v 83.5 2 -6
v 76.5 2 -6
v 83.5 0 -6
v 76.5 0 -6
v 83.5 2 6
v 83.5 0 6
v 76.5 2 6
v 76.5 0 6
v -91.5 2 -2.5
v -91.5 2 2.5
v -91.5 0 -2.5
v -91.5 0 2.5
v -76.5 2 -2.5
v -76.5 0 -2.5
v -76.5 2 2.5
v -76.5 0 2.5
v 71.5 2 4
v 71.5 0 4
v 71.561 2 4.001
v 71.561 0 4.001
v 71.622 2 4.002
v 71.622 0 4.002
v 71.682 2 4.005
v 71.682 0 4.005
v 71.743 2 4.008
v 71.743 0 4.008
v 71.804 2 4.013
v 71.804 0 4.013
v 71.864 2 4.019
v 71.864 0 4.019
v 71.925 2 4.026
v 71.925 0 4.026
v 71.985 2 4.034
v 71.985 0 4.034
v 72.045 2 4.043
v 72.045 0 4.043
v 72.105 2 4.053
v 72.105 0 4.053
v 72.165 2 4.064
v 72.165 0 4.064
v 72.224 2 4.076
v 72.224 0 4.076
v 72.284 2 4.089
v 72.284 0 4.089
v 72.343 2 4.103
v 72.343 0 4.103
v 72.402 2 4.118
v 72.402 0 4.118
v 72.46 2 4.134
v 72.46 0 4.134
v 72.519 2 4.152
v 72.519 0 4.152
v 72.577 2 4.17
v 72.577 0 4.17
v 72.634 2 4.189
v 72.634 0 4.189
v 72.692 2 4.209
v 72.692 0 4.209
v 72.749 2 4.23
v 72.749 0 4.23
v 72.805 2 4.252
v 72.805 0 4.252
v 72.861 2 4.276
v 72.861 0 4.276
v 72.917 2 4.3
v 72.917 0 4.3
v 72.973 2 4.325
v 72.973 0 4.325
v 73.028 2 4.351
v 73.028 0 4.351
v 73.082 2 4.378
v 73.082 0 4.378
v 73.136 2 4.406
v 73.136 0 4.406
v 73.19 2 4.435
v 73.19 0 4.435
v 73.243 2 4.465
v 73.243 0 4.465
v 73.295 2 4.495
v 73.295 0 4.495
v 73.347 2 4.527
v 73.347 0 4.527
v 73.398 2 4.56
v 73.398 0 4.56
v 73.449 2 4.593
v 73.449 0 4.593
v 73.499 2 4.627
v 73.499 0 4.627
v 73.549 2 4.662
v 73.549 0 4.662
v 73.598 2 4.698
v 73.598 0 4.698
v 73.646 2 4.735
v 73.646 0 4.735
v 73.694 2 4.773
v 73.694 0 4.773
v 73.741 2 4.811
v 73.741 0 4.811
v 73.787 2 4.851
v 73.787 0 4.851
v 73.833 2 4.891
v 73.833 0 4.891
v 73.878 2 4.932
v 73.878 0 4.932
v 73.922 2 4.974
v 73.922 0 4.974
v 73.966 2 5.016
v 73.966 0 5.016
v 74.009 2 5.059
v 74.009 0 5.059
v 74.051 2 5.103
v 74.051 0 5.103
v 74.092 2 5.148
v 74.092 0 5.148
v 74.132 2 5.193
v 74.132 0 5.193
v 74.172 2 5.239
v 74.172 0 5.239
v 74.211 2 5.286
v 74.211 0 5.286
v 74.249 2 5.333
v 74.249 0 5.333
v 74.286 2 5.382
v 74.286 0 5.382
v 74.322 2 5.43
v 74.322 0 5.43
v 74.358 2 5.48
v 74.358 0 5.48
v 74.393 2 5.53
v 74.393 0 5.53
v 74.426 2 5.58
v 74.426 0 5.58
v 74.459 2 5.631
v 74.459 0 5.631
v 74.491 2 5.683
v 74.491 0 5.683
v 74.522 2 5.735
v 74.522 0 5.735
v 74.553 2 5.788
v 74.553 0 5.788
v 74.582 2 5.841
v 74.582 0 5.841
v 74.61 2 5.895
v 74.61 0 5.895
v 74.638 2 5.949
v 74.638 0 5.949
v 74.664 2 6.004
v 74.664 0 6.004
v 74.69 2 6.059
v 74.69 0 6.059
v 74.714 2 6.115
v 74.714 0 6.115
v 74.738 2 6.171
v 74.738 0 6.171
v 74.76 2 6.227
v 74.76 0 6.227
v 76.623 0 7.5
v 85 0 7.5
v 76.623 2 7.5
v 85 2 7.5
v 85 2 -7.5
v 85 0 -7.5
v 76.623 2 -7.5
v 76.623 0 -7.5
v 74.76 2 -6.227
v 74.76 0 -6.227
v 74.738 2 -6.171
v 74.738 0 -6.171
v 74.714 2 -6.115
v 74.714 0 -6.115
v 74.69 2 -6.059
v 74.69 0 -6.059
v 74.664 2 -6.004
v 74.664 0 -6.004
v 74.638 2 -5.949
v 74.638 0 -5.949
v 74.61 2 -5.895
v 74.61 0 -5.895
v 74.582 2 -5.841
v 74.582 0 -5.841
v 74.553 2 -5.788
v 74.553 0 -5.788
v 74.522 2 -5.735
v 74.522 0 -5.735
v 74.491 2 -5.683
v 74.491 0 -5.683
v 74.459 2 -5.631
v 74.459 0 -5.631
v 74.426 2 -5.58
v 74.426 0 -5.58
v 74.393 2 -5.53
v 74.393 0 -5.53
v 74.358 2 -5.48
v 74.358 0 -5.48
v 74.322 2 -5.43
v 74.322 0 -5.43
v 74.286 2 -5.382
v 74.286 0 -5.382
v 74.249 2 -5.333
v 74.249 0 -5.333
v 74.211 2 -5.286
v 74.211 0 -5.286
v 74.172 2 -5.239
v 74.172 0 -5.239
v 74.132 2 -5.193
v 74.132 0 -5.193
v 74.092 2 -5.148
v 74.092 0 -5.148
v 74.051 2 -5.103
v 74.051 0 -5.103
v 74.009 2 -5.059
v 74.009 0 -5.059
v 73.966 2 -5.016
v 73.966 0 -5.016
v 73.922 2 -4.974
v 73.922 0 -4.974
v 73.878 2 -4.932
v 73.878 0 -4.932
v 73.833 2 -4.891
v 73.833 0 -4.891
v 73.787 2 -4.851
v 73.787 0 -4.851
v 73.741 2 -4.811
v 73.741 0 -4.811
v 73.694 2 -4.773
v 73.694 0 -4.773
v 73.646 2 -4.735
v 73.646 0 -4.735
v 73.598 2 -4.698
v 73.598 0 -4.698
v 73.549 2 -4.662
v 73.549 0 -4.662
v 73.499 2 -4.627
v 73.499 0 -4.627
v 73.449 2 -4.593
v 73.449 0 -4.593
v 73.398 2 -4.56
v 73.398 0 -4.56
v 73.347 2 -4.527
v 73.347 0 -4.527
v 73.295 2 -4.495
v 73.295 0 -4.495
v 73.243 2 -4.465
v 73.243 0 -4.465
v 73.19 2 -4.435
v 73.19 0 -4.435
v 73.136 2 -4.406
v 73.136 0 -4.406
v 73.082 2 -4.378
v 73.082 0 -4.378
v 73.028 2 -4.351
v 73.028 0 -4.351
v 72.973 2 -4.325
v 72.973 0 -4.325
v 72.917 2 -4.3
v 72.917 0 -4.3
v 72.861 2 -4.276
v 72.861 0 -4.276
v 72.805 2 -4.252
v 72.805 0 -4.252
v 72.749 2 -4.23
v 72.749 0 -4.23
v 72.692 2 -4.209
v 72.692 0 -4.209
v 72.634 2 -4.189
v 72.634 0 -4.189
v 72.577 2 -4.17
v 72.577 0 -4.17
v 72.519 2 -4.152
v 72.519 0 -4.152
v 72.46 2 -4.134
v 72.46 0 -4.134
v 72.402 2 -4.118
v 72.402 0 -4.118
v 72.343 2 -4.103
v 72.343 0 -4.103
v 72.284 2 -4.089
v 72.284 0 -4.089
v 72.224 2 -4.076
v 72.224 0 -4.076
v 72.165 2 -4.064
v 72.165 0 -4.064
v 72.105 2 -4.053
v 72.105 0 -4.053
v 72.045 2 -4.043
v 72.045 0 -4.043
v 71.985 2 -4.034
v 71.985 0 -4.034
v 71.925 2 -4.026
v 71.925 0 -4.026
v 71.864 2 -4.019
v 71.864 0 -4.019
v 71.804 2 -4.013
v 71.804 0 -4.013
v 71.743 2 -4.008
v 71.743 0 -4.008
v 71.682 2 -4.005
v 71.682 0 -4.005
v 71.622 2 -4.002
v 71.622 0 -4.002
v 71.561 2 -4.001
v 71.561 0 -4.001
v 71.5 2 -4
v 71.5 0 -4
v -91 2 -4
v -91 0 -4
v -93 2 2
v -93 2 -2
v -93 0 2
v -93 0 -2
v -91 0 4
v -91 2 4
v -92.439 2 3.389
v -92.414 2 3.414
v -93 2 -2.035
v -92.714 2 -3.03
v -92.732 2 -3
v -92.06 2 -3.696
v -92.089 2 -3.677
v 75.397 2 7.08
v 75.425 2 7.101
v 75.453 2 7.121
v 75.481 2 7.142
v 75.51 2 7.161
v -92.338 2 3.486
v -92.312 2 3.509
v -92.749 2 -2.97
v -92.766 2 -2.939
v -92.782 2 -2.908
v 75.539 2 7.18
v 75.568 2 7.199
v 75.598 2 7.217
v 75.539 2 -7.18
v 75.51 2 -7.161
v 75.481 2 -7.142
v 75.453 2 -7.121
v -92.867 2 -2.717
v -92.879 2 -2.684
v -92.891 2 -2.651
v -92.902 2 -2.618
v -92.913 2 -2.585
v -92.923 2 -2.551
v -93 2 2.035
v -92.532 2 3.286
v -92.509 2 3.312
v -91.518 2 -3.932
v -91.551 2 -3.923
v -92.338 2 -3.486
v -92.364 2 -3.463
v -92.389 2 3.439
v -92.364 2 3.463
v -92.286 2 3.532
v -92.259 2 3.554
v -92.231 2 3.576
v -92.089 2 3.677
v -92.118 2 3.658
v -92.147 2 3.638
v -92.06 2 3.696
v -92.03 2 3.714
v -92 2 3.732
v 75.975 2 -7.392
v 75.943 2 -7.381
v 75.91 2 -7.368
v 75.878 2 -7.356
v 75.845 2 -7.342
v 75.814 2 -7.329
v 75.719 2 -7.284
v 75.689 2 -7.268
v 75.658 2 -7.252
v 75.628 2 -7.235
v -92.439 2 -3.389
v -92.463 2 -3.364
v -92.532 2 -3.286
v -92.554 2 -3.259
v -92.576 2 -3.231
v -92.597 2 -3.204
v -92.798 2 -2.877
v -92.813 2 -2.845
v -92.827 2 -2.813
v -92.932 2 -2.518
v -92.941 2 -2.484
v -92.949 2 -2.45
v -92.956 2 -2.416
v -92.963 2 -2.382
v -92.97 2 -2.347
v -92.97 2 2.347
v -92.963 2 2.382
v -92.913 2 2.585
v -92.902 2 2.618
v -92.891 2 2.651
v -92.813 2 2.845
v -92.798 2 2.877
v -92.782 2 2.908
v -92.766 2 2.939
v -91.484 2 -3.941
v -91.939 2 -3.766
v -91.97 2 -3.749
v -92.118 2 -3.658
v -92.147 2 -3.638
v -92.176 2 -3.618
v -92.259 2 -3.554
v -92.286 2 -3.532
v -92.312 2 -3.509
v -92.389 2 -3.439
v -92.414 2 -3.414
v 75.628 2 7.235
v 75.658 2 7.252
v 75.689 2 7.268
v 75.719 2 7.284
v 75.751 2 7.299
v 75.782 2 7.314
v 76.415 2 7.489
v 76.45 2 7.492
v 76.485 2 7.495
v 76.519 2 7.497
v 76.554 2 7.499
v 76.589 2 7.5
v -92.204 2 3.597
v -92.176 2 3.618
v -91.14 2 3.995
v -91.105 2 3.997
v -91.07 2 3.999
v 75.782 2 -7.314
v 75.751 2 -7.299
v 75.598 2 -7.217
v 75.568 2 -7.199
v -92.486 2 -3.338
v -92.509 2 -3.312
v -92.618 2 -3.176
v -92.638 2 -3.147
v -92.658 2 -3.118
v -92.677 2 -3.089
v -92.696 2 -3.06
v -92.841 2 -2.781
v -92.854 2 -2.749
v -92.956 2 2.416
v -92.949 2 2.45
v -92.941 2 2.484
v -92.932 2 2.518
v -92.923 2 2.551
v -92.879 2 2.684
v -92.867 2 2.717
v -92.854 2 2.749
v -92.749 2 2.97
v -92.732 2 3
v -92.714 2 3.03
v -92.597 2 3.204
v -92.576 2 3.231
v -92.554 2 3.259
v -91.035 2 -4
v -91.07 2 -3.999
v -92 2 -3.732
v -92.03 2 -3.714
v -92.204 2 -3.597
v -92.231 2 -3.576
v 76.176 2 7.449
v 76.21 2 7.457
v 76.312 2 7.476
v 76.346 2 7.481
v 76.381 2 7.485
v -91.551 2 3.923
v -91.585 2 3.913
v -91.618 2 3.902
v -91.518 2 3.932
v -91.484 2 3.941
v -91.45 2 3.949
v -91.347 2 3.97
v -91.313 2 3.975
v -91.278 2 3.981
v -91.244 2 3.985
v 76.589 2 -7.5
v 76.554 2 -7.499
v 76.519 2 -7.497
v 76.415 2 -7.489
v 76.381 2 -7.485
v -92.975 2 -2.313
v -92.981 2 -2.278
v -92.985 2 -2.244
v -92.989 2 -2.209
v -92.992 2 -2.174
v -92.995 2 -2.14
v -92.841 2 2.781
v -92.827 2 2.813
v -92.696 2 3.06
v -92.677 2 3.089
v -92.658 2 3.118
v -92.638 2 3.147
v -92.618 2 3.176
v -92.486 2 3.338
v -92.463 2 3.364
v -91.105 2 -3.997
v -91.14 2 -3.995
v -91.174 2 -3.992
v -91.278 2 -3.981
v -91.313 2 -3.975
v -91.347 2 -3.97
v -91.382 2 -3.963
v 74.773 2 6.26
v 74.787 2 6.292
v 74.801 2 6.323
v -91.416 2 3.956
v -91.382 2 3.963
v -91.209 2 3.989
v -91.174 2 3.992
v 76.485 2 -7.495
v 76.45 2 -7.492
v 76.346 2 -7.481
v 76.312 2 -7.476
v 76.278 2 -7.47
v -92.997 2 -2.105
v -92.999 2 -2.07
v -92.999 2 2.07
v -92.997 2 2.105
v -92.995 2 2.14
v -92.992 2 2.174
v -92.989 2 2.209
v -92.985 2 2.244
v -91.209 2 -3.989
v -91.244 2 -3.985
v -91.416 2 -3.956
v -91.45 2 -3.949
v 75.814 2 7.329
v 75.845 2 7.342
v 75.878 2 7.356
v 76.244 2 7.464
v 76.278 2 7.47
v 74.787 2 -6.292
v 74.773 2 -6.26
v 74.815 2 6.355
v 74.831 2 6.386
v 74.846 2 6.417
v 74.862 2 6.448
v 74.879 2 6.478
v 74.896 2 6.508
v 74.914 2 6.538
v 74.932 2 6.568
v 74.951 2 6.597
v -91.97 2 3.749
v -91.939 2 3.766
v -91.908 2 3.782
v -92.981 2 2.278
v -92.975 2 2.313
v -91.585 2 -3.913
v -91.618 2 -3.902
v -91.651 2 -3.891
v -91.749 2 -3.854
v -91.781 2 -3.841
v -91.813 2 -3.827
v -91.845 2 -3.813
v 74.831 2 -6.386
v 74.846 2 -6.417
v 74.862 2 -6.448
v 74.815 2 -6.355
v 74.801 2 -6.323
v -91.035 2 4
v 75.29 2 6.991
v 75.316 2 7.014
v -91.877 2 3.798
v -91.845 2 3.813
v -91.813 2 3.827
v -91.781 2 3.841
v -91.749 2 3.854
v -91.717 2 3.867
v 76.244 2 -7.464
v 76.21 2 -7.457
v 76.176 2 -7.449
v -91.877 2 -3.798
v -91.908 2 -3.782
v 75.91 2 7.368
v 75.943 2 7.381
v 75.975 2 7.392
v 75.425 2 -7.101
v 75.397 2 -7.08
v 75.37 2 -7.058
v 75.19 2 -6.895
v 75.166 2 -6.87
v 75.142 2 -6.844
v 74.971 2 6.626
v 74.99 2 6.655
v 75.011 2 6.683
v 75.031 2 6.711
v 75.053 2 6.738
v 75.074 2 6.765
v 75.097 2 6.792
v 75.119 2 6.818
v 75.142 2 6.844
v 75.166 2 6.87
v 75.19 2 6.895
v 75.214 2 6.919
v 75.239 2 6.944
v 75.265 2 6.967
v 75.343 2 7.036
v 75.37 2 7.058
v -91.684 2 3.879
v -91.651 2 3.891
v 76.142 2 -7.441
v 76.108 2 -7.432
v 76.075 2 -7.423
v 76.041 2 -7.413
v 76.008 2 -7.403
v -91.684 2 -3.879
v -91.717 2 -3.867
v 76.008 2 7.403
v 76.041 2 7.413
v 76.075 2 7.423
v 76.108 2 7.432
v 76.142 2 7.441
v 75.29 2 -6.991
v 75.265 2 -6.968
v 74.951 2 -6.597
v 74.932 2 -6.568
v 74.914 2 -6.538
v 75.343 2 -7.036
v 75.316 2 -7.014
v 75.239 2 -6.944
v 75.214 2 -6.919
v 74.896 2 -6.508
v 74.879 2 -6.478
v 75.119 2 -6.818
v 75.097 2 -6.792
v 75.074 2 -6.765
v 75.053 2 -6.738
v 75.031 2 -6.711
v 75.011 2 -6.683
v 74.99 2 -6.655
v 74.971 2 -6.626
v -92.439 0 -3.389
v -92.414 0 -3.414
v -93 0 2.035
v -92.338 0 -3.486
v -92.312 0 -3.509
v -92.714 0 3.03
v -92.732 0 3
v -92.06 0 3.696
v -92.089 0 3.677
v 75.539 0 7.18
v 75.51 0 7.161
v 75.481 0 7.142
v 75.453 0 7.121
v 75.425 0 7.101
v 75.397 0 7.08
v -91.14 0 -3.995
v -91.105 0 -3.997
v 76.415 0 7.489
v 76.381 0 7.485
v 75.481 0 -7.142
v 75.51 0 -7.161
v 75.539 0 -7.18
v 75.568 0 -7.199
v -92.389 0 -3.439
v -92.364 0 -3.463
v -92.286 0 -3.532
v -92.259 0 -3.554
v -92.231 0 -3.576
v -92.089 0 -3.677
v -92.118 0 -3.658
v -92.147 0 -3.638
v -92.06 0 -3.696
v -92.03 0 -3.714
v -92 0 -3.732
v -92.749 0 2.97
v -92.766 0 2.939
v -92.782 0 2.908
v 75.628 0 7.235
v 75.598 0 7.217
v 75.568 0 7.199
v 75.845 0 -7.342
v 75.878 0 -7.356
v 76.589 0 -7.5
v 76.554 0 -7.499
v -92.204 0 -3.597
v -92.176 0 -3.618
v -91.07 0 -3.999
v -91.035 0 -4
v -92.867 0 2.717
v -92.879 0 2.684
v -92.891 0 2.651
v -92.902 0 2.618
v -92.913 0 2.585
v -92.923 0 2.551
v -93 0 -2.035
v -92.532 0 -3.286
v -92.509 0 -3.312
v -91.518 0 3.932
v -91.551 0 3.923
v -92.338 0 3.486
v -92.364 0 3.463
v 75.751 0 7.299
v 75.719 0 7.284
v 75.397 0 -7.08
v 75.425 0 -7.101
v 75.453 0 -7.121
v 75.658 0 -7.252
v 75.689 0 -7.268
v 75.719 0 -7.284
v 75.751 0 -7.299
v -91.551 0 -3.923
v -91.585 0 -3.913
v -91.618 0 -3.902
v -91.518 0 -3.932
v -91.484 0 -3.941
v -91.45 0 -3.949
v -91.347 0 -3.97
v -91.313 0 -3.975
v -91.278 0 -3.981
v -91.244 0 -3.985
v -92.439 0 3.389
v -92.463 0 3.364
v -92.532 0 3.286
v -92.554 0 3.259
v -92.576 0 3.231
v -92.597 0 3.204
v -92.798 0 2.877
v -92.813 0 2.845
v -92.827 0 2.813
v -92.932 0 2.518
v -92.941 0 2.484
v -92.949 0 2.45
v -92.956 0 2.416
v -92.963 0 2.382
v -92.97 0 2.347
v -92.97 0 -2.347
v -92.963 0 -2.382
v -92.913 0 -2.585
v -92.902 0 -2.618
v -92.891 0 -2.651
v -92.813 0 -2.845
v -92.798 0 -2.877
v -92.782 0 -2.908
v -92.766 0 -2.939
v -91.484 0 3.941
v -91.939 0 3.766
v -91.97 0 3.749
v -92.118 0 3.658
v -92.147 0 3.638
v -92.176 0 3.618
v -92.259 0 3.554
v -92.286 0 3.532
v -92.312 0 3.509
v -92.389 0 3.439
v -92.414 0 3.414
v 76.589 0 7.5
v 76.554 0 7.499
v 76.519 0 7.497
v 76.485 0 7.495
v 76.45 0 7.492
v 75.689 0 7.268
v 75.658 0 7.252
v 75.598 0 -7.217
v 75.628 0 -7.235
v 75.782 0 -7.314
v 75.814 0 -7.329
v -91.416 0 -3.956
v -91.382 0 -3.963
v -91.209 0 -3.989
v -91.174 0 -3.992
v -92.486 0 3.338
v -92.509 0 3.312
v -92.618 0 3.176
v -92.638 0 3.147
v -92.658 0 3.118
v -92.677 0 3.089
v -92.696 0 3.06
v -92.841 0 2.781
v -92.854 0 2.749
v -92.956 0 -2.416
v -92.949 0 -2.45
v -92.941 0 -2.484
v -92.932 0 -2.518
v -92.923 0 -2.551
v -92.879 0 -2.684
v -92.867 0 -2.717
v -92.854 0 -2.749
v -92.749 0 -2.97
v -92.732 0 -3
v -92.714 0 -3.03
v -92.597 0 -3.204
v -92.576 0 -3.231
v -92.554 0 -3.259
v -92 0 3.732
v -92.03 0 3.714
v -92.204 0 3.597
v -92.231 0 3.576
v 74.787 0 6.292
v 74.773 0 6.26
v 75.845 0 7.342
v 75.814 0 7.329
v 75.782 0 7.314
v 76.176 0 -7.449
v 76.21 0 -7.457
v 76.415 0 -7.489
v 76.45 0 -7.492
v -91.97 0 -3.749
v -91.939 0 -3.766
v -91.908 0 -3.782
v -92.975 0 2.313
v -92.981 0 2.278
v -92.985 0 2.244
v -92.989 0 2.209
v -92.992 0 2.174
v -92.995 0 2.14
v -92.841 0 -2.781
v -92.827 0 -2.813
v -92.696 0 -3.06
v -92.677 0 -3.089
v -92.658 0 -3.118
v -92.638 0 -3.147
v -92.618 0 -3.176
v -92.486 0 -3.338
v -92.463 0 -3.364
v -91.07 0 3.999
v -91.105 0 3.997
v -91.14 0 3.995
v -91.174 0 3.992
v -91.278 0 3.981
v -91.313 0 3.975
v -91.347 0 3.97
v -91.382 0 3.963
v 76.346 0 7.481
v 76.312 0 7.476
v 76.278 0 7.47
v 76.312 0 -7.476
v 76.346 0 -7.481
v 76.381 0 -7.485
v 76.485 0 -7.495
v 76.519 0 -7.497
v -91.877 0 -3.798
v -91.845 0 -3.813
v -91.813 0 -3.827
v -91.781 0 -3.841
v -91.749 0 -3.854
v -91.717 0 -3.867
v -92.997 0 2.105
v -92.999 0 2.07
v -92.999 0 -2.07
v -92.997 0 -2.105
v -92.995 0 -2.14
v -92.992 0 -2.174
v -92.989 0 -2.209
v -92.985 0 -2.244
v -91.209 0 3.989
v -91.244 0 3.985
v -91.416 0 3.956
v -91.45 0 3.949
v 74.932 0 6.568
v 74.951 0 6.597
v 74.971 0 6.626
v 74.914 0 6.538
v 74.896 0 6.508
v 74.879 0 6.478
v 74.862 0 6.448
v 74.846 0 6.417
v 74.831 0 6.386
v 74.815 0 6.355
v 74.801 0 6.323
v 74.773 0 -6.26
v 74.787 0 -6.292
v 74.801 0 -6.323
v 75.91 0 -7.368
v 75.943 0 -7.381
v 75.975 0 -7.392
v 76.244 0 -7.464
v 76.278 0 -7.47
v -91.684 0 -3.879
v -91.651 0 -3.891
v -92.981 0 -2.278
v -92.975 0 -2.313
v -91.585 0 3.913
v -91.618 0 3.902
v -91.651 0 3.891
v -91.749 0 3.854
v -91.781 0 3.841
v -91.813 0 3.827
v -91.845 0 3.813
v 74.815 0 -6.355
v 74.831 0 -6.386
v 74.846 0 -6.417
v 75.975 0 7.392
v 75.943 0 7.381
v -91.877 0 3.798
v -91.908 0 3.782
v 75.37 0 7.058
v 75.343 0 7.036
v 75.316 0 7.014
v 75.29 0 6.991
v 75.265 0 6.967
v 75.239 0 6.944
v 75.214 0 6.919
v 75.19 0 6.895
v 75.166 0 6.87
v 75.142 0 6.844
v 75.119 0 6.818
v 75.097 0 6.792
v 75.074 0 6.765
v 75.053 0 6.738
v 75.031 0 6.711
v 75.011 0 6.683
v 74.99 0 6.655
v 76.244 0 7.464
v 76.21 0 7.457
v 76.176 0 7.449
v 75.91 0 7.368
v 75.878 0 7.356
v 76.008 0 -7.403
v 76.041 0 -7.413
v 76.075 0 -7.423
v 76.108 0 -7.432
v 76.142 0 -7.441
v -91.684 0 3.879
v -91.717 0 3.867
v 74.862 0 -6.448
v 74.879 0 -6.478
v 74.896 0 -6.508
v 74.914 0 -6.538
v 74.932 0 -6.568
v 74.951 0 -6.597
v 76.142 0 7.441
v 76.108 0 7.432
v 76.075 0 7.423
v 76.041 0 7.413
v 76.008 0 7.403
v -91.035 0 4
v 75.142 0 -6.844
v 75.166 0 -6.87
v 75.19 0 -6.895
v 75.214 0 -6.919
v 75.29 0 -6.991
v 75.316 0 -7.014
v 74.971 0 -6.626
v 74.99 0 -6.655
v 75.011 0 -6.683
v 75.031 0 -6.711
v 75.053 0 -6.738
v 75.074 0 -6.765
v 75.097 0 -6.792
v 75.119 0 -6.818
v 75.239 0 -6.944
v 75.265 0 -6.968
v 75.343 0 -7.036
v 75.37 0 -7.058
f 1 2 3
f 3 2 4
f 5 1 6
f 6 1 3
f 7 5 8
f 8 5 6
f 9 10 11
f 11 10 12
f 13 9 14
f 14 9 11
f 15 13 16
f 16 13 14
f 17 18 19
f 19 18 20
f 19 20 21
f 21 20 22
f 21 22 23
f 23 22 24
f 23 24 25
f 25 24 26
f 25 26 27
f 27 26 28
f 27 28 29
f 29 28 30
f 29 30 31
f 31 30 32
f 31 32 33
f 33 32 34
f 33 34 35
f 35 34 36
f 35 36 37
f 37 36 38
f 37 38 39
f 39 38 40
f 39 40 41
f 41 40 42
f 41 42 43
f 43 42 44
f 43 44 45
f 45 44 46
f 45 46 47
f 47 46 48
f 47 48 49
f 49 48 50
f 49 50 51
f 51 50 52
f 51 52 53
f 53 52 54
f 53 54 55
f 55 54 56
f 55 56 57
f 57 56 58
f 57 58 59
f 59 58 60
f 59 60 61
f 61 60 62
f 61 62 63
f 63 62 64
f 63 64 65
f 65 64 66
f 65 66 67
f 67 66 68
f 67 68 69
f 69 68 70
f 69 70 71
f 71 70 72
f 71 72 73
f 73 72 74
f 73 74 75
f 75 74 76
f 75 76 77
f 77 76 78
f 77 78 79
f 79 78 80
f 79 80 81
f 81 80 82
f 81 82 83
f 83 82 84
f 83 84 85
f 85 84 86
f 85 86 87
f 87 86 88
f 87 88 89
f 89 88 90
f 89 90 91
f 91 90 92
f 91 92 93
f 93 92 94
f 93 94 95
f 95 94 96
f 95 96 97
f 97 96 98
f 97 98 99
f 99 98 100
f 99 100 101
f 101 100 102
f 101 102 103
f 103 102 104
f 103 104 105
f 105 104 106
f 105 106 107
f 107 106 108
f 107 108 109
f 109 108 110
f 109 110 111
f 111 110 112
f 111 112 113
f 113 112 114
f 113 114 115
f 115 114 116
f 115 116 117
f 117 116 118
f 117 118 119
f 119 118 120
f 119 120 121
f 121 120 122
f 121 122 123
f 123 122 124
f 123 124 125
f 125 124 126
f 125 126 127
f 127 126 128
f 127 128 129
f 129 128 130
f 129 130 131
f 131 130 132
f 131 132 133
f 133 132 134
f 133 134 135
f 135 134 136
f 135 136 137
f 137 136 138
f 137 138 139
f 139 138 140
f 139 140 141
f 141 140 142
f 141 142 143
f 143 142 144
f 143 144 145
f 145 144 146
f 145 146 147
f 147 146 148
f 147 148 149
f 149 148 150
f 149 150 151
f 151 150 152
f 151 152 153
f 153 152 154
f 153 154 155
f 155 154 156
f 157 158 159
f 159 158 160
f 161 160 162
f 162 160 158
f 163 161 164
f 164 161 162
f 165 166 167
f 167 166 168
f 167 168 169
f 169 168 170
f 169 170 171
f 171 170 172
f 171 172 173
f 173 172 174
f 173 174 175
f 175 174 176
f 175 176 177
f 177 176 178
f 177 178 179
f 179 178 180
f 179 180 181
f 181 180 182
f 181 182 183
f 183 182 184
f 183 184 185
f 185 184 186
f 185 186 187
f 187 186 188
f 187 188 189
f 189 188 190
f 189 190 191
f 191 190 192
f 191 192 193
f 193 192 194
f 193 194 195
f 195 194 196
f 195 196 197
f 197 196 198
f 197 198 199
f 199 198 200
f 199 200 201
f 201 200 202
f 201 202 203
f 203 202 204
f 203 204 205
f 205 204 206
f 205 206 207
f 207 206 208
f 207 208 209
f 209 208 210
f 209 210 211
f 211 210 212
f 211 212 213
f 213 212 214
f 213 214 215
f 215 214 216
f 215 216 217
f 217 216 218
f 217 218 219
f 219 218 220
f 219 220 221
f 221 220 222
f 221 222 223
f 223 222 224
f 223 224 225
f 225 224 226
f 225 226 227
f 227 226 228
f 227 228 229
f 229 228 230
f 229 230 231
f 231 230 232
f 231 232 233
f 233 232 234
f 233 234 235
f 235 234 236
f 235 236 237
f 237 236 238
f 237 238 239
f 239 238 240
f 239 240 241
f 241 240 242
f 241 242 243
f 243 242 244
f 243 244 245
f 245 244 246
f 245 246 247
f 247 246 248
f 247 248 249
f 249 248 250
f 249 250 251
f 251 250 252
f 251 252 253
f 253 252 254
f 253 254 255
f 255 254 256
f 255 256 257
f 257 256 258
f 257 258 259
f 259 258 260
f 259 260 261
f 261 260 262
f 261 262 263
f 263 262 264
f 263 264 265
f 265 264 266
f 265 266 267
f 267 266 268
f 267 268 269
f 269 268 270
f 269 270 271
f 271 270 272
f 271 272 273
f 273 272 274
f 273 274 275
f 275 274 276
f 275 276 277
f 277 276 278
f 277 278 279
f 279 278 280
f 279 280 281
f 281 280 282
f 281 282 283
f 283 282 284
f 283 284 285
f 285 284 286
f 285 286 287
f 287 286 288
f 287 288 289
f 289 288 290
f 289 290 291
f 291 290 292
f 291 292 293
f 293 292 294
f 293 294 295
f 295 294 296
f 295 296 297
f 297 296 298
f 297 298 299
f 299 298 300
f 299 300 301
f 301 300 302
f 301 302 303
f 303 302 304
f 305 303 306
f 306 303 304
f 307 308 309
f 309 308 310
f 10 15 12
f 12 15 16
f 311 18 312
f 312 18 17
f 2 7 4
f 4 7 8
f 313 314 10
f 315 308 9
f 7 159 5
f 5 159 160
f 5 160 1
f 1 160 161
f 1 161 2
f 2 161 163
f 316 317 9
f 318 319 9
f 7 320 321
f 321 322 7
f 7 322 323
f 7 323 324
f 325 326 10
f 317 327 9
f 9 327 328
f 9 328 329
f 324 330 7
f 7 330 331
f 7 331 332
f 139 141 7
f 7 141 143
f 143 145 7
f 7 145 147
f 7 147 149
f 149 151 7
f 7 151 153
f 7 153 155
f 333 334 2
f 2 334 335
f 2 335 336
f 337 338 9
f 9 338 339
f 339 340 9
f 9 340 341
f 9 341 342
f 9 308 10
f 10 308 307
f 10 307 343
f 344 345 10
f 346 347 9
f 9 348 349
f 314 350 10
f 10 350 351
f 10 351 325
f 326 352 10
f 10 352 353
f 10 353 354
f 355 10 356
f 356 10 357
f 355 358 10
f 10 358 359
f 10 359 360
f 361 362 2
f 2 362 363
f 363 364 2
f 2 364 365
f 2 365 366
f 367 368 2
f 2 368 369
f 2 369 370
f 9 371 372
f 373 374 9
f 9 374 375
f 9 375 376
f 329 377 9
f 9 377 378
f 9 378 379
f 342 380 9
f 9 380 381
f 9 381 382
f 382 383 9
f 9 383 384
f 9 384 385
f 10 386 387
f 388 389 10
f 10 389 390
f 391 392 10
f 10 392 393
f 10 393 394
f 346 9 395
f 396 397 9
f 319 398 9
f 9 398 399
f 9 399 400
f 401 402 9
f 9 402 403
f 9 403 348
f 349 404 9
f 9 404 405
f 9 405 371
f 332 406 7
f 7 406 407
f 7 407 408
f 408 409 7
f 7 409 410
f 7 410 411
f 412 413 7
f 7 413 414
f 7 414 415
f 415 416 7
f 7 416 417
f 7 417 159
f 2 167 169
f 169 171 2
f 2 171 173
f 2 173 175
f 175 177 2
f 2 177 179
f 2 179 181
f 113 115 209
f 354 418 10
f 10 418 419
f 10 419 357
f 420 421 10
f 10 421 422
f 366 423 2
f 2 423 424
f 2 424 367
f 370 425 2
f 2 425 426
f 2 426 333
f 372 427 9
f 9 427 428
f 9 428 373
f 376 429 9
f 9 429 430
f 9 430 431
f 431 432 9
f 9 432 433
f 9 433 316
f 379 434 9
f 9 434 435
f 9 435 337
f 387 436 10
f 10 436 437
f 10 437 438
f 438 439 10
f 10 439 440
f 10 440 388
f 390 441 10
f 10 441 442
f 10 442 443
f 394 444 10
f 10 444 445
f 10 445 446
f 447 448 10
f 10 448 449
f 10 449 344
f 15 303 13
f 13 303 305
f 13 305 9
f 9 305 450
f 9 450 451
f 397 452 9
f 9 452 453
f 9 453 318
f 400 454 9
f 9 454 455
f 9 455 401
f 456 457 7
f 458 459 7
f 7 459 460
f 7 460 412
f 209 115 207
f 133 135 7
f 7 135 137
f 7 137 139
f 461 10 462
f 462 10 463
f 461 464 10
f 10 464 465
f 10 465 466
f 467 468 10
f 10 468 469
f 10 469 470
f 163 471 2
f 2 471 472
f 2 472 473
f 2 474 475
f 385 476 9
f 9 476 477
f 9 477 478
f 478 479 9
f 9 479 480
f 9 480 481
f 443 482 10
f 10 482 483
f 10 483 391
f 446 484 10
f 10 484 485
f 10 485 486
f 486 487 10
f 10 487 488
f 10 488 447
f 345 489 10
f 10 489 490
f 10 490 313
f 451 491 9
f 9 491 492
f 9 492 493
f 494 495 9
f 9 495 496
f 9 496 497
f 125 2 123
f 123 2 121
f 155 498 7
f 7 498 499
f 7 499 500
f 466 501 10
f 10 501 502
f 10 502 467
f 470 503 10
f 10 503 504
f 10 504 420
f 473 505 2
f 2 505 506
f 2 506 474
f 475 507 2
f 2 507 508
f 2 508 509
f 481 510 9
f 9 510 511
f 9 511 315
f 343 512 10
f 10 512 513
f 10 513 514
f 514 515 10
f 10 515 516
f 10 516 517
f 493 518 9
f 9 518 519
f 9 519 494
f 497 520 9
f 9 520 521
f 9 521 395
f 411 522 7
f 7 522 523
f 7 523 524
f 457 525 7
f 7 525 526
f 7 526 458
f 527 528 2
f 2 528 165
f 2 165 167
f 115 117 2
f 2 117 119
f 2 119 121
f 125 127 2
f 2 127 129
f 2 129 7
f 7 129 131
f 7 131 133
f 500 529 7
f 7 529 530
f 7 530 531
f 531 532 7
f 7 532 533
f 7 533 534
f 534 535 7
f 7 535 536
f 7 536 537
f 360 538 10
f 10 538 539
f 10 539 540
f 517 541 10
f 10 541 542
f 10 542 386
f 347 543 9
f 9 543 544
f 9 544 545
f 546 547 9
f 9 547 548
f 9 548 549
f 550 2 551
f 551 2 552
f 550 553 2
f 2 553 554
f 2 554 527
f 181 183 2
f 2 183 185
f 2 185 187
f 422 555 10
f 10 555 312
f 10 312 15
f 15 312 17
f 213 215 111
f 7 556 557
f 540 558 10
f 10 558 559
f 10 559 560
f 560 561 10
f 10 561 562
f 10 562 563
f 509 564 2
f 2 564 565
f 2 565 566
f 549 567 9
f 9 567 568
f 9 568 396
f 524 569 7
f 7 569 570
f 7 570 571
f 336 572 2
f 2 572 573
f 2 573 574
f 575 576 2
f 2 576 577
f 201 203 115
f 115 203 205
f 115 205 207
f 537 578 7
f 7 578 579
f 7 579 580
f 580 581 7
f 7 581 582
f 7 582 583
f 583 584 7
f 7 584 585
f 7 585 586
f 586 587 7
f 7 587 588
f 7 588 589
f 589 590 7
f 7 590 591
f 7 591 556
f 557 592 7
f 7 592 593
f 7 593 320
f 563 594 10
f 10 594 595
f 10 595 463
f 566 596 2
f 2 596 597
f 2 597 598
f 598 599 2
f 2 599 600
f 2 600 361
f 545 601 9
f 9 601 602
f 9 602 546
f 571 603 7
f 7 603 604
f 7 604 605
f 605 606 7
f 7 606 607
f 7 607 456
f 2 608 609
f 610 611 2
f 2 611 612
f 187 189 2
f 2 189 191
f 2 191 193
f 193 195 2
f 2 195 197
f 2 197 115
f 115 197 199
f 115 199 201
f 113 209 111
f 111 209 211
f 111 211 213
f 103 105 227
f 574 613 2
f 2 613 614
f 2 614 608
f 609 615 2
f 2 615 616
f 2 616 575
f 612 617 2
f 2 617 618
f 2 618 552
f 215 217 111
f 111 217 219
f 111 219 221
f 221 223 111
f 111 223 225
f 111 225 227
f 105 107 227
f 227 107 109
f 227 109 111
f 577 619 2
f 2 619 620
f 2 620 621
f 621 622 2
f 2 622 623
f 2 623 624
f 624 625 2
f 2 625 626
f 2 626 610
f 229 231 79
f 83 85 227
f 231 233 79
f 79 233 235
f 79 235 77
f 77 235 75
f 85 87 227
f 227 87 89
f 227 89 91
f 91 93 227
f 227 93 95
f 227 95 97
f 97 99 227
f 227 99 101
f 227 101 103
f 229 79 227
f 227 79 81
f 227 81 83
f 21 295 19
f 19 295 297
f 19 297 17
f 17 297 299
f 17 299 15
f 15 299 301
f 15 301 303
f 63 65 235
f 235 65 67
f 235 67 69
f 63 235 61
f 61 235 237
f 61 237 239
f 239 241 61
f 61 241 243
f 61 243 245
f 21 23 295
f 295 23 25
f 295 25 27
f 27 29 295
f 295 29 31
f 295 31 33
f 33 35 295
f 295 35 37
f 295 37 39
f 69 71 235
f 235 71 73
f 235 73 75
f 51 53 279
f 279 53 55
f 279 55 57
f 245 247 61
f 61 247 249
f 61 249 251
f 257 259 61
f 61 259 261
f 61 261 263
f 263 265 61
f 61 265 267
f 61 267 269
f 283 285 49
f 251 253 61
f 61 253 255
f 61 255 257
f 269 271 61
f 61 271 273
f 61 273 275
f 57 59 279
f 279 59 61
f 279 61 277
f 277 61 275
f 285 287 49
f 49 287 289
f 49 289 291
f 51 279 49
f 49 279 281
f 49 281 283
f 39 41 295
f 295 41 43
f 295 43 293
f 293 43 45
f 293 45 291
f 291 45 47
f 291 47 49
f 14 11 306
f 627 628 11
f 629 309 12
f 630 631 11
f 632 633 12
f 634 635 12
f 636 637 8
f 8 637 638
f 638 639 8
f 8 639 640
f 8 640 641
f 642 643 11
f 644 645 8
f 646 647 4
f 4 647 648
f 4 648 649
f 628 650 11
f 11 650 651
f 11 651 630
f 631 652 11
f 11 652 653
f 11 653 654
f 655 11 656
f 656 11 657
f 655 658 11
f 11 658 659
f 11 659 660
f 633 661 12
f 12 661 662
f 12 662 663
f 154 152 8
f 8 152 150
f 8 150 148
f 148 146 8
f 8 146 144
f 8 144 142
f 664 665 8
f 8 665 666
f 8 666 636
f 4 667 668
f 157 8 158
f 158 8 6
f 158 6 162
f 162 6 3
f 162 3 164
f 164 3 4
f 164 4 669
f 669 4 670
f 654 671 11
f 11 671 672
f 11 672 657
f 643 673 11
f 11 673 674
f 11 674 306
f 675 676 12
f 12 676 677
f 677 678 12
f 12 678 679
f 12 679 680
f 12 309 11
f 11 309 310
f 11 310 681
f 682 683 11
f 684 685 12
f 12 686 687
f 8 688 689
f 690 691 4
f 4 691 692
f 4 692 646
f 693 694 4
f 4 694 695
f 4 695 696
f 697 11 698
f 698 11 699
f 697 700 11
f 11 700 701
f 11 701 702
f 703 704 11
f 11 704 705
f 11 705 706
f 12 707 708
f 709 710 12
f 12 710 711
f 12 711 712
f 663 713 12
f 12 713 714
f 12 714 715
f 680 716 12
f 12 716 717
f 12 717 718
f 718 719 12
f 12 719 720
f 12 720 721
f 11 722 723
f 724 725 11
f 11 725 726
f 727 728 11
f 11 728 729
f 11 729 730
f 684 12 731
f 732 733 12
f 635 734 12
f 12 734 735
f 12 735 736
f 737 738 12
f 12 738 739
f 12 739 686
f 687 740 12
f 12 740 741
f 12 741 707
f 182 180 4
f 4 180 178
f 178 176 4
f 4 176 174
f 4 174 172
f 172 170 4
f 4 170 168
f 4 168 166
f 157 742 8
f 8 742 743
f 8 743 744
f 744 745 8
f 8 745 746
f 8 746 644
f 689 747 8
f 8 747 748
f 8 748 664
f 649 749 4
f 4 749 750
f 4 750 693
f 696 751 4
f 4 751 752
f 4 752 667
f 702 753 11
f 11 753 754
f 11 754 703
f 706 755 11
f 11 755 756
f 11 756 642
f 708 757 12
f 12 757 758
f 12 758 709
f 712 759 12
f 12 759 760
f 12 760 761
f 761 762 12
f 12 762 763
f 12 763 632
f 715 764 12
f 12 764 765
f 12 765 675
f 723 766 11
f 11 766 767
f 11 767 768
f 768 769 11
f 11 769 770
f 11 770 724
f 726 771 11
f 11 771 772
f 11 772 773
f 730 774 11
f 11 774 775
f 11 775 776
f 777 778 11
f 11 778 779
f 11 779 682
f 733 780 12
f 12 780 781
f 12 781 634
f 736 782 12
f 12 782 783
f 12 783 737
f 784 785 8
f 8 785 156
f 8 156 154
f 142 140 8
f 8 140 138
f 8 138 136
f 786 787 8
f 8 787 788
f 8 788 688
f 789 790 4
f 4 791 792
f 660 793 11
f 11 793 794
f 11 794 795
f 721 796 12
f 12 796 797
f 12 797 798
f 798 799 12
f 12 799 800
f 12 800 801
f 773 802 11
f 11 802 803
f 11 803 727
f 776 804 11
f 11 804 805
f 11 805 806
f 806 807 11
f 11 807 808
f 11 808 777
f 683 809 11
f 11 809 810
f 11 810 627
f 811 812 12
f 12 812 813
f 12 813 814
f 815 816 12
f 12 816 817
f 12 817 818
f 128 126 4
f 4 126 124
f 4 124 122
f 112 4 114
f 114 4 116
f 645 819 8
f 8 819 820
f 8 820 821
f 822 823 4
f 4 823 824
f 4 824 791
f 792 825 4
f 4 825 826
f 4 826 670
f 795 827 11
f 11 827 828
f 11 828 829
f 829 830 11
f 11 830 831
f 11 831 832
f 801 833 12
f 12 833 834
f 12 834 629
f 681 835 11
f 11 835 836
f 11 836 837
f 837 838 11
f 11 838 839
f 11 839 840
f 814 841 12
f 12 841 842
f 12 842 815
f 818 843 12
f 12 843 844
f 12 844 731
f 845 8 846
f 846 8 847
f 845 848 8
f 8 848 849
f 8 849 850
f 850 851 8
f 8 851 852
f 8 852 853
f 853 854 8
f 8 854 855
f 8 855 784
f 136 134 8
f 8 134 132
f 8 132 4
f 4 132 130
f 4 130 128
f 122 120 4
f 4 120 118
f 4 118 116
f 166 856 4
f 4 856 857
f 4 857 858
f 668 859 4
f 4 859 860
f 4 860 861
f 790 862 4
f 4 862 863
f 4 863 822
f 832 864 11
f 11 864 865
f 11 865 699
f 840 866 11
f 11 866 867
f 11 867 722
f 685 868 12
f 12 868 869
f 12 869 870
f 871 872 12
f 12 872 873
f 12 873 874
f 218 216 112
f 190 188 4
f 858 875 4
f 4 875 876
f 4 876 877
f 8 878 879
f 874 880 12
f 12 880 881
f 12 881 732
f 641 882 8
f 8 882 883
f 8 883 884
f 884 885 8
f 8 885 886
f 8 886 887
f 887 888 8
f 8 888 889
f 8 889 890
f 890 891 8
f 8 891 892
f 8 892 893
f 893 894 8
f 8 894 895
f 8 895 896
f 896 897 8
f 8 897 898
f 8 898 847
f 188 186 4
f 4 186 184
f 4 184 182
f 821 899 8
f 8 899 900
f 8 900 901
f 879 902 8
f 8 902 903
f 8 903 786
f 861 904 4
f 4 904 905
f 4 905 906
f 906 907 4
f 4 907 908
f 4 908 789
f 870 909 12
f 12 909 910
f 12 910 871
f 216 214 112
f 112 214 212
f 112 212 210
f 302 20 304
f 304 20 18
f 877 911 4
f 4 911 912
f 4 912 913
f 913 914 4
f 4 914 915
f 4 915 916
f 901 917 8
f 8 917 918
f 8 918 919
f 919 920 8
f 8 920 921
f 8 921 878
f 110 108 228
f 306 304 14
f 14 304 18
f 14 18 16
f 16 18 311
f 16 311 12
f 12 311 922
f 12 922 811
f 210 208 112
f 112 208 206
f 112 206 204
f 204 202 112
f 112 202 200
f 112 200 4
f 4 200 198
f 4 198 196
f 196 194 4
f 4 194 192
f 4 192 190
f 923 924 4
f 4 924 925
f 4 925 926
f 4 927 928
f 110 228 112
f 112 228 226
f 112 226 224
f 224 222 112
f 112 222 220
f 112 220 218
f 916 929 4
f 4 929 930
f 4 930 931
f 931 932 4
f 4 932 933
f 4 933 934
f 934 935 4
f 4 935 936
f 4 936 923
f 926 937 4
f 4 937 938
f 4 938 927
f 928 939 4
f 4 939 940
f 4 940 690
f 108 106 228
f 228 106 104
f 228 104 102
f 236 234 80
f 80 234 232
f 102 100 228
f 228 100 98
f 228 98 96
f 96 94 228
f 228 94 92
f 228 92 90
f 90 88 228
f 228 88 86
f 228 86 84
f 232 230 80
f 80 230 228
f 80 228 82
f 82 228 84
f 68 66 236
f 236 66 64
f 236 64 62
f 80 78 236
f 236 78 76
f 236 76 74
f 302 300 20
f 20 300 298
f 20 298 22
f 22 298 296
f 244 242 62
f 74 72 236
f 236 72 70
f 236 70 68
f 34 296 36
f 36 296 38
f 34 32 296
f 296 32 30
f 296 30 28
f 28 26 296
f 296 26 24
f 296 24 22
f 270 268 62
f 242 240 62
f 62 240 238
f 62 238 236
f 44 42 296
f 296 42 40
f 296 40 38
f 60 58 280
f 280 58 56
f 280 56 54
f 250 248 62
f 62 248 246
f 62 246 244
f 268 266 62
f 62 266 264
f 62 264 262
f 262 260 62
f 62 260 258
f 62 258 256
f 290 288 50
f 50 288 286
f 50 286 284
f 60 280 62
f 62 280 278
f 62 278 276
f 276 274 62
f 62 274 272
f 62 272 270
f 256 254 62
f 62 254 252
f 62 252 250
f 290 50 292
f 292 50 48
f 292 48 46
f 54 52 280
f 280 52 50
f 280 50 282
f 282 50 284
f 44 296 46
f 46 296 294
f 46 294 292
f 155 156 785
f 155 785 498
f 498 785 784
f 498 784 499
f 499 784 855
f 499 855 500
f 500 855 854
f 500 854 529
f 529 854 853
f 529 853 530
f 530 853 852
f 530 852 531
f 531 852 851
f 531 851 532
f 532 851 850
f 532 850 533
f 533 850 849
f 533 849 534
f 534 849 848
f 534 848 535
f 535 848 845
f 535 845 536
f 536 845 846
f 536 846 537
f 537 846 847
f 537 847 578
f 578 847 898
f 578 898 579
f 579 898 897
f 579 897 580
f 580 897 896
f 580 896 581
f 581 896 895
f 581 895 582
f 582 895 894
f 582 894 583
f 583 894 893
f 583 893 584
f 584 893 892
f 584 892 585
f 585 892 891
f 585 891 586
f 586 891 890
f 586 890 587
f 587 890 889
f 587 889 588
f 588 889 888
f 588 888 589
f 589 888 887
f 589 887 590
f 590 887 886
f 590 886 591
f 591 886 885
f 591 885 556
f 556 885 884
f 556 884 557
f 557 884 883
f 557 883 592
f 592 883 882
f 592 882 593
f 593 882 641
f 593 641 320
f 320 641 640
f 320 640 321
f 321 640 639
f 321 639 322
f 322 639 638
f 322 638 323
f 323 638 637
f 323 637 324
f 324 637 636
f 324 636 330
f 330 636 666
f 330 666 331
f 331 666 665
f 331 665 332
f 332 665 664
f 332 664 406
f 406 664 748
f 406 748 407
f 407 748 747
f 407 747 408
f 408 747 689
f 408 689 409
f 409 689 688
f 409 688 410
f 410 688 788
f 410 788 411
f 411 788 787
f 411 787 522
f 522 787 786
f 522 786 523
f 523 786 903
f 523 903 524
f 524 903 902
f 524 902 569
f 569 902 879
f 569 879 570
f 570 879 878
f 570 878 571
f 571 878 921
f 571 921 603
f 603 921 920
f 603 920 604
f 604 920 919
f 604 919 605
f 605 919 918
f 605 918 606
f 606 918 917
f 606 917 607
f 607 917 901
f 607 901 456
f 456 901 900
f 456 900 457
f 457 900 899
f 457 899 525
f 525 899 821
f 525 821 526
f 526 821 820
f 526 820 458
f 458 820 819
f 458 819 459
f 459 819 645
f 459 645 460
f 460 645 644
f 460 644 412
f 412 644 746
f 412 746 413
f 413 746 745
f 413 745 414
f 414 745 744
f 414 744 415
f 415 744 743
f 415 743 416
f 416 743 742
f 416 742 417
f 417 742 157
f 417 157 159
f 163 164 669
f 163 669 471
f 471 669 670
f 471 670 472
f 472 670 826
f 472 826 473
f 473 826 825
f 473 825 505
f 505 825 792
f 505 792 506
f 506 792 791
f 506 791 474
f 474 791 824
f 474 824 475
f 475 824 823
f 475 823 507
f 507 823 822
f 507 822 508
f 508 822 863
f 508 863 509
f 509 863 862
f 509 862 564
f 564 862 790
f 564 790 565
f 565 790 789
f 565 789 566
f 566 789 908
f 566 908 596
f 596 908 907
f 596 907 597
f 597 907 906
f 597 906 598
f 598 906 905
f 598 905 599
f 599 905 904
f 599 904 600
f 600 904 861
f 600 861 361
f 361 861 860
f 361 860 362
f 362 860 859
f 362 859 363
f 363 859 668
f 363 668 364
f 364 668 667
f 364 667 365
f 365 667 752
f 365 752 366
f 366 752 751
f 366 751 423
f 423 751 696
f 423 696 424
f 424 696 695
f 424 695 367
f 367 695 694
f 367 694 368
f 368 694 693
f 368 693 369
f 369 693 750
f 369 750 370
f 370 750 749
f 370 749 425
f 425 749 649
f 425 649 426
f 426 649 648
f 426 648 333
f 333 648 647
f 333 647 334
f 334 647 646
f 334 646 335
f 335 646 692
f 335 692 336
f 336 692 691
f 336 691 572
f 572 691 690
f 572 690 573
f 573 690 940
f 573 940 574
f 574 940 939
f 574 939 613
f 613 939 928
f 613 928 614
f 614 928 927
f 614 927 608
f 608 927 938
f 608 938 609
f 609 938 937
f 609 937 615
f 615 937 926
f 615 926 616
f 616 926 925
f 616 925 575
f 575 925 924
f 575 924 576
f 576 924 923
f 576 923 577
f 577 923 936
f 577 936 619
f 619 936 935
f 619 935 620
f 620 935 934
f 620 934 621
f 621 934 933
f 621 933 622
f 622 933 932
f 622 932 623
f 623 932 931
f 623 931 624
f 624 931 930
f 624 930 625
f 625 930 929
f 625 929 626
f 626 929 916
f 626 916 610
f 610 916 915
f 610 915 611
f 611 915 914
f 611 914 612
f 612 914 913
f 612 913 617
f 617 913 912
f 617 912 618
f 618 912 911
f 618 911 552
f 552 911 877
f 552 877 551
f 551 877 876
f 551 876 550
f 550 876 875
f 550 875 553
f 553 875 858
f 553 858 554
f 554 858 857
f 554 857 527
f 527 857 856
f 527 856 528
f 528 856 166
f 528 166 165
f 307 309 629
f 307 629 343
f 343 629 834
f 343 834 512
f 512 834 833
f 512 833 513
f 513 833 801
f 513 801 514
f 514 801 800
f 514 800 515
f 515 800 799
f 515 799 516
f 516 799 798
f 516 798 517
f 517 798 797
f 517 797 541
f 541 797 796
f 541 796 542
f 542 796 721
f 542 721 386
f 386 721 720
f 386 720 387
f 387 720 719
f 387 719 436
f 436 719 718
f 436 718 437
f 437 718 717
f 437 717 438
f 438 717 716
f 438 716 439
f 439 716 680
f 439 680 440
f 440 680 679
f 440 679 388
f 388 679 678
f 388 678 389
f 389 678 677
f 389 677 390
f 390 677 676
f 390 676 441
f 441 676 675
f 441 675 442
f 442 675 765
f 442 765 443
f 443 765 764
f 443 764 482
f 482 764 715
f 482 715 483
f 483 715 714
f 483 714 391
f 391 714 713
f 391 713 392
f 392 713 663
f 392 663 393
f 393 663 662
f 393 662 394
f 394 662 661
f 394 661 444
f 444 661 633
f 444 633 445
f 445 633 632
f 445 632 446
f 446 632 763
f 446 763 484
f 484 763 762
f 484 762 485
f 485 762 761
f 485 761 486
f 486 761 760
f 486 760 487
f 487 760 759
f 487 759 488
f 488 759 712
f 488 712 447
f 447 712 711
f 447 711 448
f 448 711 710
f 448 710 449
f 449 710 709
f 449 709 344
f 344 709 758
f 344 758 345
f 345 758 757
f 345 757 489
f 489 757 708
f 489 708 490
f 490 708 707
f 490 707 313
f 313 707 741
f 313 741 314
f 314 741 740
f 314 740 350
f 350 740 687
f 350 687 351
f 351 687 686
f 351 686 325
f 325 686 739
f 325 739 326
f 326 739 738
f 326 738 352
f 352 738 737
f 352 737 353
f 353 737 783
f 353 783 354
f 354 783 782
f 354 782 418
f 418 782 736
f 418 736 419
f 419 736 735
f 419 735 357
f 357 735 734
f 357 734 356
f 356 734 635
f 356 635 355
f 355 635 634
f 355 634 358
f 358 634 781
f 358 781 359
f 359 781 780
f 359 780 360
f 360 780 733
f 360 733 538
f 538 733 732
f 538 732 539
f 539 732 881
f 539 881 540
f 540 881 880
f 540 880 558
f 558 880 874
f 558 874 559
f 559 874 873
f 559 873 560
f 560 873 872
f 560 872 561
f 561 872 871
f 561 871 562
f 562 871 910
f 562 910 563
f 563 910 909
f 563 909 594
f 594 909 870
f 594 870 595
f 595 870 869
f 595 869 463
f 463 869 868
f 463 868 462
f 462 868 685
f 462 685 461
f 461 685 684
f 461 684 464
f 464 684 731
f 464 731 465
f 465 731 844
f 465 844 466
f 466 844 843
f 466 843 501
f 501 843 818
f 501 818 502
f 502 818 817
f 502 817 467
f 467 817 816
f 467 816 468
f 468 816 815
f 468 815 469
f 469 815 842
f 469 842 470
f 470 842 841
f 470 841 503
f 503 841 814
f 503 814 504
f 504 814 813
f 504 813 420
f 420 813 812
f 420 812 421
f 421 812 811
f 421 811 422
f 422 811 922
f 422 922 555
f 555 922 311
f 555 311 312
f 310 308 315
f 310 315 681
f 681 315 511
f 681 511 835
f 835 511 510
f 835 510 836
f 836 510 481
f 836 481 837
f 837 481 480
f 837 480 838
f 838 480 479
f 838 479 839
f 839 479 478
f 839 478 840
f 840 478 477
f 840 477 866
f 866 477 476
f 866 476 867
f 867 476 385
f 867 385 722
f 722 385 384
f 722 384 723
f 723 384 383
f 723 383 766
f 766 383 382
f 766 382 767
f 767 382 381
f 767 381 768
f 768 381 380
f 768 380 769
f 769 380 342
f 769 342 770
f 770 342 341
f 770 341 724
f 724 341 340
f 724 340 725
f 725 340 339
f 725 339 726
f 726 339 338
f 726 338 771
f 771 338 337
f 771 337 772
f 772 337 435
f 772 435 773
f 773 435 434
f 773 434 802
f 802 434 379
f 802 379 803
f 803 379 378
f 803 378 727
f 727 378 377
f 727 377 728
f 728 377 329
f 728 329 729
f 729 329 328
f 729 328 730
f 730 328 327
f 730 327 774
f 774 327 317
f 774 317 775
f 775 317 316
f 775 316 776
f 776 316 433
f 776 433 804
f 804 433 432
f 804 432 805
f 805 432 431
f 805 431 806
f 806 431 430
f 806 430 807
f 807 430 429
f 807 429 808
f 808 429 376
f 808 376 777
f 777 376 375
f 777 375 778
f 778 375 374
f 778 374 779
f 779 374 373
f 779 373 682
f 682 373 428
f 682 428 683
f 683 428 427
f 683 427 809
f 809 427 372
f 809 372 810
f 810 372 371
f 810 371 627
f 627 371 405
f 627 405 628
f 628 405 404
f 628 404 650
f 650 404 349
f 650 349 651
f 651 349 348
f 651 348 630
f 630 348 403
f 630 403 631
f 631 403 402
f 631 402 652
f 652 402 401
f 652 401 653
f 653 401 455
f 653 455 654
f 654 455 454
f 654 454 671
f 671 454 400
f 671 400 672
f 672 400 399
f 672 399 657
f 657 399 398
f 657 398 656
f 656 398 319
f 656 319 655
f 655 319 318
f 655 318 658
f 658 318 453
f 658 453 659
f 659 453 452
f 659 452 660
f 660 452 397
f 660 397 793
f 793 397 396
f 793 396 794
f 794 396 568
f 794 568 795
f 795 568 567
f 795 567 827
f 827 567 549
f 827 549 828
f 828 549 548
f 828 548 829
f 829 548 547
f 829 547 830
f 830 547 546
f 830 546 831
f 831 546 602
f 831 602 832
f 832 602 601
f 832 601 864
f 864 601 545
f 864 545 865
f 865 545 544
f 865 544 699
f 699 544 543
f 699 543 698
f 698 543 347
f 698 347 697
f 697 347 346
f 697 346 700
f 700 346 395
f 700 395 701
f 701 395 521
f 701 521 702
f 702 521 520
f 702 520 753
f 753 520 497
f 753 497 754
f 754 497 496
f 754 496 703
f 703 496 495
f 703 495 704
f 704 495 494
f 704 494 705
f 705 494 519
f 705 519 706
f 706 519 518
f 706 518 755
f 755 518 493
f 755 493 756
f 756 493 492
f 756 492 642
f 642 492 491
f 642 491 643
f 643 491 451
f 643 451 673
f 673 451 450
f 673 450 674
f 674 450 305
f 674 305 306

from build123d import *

# Parameters (mm, degrees)
SKETCH1_W           = 7
SKETCH1_H           = 12
SKETCH1_W_2         = 15
SKETCH1_H_2         = 5
BOSS_EXTRUDE1_DEPTH = 2
FILLET1_R           = 2


with BuildPart() as part:
    # Sketch1 → Boss-Extrude1 (new body)
    with BuildSketch(Plane(origin=(0, 0, 0), x_dir=(1, 0, 0), z_dir=(0, 1, 0))):
        with BuildLine():
            Line((-93, 4), (-93, -4))
            Line((-93, -4), (71.500000067, -4))
            ThreePointArc((71.500000067, -4), (73.974873758, -5.025126289), (75, -7.5))
            Line((75, -7.5), (85, -7.5))
            Line((85, -7.5), (85, 7.5))
            Line((85, 7.5), (75, 7.5))
            ThreePointArc((75, 7.5), (73.974873696, 5.025126228), (71.499999892, 4))
            Line((71.499999892, 4), (-93, 4))
        make_face()
        with Locations((80, 0)):
            Rectangle(SKETCH1_W, SKETCH1_H, mode=Mode.SUBTRACT)
        with Locations((-84, 0)):
            Rectangle(SKETCH1_W_2, SKETCH1_H_2, mode=Mode.SUBTRACT)
    extrude(amount=BOSS_EXTRUDE1_DEPTH)

    # Fillet1
    fillet1_edges = [part.edges().sort_by_distance(p)[0] for p in [
        (-93, 1, 4),
        (-93, 1, -4),
        (75, 1, -7.5),
        (75, 1, 7.5),
    ]]
    fillet(fillet1_edges, radius=FILLET1_R)


solid = part.part
